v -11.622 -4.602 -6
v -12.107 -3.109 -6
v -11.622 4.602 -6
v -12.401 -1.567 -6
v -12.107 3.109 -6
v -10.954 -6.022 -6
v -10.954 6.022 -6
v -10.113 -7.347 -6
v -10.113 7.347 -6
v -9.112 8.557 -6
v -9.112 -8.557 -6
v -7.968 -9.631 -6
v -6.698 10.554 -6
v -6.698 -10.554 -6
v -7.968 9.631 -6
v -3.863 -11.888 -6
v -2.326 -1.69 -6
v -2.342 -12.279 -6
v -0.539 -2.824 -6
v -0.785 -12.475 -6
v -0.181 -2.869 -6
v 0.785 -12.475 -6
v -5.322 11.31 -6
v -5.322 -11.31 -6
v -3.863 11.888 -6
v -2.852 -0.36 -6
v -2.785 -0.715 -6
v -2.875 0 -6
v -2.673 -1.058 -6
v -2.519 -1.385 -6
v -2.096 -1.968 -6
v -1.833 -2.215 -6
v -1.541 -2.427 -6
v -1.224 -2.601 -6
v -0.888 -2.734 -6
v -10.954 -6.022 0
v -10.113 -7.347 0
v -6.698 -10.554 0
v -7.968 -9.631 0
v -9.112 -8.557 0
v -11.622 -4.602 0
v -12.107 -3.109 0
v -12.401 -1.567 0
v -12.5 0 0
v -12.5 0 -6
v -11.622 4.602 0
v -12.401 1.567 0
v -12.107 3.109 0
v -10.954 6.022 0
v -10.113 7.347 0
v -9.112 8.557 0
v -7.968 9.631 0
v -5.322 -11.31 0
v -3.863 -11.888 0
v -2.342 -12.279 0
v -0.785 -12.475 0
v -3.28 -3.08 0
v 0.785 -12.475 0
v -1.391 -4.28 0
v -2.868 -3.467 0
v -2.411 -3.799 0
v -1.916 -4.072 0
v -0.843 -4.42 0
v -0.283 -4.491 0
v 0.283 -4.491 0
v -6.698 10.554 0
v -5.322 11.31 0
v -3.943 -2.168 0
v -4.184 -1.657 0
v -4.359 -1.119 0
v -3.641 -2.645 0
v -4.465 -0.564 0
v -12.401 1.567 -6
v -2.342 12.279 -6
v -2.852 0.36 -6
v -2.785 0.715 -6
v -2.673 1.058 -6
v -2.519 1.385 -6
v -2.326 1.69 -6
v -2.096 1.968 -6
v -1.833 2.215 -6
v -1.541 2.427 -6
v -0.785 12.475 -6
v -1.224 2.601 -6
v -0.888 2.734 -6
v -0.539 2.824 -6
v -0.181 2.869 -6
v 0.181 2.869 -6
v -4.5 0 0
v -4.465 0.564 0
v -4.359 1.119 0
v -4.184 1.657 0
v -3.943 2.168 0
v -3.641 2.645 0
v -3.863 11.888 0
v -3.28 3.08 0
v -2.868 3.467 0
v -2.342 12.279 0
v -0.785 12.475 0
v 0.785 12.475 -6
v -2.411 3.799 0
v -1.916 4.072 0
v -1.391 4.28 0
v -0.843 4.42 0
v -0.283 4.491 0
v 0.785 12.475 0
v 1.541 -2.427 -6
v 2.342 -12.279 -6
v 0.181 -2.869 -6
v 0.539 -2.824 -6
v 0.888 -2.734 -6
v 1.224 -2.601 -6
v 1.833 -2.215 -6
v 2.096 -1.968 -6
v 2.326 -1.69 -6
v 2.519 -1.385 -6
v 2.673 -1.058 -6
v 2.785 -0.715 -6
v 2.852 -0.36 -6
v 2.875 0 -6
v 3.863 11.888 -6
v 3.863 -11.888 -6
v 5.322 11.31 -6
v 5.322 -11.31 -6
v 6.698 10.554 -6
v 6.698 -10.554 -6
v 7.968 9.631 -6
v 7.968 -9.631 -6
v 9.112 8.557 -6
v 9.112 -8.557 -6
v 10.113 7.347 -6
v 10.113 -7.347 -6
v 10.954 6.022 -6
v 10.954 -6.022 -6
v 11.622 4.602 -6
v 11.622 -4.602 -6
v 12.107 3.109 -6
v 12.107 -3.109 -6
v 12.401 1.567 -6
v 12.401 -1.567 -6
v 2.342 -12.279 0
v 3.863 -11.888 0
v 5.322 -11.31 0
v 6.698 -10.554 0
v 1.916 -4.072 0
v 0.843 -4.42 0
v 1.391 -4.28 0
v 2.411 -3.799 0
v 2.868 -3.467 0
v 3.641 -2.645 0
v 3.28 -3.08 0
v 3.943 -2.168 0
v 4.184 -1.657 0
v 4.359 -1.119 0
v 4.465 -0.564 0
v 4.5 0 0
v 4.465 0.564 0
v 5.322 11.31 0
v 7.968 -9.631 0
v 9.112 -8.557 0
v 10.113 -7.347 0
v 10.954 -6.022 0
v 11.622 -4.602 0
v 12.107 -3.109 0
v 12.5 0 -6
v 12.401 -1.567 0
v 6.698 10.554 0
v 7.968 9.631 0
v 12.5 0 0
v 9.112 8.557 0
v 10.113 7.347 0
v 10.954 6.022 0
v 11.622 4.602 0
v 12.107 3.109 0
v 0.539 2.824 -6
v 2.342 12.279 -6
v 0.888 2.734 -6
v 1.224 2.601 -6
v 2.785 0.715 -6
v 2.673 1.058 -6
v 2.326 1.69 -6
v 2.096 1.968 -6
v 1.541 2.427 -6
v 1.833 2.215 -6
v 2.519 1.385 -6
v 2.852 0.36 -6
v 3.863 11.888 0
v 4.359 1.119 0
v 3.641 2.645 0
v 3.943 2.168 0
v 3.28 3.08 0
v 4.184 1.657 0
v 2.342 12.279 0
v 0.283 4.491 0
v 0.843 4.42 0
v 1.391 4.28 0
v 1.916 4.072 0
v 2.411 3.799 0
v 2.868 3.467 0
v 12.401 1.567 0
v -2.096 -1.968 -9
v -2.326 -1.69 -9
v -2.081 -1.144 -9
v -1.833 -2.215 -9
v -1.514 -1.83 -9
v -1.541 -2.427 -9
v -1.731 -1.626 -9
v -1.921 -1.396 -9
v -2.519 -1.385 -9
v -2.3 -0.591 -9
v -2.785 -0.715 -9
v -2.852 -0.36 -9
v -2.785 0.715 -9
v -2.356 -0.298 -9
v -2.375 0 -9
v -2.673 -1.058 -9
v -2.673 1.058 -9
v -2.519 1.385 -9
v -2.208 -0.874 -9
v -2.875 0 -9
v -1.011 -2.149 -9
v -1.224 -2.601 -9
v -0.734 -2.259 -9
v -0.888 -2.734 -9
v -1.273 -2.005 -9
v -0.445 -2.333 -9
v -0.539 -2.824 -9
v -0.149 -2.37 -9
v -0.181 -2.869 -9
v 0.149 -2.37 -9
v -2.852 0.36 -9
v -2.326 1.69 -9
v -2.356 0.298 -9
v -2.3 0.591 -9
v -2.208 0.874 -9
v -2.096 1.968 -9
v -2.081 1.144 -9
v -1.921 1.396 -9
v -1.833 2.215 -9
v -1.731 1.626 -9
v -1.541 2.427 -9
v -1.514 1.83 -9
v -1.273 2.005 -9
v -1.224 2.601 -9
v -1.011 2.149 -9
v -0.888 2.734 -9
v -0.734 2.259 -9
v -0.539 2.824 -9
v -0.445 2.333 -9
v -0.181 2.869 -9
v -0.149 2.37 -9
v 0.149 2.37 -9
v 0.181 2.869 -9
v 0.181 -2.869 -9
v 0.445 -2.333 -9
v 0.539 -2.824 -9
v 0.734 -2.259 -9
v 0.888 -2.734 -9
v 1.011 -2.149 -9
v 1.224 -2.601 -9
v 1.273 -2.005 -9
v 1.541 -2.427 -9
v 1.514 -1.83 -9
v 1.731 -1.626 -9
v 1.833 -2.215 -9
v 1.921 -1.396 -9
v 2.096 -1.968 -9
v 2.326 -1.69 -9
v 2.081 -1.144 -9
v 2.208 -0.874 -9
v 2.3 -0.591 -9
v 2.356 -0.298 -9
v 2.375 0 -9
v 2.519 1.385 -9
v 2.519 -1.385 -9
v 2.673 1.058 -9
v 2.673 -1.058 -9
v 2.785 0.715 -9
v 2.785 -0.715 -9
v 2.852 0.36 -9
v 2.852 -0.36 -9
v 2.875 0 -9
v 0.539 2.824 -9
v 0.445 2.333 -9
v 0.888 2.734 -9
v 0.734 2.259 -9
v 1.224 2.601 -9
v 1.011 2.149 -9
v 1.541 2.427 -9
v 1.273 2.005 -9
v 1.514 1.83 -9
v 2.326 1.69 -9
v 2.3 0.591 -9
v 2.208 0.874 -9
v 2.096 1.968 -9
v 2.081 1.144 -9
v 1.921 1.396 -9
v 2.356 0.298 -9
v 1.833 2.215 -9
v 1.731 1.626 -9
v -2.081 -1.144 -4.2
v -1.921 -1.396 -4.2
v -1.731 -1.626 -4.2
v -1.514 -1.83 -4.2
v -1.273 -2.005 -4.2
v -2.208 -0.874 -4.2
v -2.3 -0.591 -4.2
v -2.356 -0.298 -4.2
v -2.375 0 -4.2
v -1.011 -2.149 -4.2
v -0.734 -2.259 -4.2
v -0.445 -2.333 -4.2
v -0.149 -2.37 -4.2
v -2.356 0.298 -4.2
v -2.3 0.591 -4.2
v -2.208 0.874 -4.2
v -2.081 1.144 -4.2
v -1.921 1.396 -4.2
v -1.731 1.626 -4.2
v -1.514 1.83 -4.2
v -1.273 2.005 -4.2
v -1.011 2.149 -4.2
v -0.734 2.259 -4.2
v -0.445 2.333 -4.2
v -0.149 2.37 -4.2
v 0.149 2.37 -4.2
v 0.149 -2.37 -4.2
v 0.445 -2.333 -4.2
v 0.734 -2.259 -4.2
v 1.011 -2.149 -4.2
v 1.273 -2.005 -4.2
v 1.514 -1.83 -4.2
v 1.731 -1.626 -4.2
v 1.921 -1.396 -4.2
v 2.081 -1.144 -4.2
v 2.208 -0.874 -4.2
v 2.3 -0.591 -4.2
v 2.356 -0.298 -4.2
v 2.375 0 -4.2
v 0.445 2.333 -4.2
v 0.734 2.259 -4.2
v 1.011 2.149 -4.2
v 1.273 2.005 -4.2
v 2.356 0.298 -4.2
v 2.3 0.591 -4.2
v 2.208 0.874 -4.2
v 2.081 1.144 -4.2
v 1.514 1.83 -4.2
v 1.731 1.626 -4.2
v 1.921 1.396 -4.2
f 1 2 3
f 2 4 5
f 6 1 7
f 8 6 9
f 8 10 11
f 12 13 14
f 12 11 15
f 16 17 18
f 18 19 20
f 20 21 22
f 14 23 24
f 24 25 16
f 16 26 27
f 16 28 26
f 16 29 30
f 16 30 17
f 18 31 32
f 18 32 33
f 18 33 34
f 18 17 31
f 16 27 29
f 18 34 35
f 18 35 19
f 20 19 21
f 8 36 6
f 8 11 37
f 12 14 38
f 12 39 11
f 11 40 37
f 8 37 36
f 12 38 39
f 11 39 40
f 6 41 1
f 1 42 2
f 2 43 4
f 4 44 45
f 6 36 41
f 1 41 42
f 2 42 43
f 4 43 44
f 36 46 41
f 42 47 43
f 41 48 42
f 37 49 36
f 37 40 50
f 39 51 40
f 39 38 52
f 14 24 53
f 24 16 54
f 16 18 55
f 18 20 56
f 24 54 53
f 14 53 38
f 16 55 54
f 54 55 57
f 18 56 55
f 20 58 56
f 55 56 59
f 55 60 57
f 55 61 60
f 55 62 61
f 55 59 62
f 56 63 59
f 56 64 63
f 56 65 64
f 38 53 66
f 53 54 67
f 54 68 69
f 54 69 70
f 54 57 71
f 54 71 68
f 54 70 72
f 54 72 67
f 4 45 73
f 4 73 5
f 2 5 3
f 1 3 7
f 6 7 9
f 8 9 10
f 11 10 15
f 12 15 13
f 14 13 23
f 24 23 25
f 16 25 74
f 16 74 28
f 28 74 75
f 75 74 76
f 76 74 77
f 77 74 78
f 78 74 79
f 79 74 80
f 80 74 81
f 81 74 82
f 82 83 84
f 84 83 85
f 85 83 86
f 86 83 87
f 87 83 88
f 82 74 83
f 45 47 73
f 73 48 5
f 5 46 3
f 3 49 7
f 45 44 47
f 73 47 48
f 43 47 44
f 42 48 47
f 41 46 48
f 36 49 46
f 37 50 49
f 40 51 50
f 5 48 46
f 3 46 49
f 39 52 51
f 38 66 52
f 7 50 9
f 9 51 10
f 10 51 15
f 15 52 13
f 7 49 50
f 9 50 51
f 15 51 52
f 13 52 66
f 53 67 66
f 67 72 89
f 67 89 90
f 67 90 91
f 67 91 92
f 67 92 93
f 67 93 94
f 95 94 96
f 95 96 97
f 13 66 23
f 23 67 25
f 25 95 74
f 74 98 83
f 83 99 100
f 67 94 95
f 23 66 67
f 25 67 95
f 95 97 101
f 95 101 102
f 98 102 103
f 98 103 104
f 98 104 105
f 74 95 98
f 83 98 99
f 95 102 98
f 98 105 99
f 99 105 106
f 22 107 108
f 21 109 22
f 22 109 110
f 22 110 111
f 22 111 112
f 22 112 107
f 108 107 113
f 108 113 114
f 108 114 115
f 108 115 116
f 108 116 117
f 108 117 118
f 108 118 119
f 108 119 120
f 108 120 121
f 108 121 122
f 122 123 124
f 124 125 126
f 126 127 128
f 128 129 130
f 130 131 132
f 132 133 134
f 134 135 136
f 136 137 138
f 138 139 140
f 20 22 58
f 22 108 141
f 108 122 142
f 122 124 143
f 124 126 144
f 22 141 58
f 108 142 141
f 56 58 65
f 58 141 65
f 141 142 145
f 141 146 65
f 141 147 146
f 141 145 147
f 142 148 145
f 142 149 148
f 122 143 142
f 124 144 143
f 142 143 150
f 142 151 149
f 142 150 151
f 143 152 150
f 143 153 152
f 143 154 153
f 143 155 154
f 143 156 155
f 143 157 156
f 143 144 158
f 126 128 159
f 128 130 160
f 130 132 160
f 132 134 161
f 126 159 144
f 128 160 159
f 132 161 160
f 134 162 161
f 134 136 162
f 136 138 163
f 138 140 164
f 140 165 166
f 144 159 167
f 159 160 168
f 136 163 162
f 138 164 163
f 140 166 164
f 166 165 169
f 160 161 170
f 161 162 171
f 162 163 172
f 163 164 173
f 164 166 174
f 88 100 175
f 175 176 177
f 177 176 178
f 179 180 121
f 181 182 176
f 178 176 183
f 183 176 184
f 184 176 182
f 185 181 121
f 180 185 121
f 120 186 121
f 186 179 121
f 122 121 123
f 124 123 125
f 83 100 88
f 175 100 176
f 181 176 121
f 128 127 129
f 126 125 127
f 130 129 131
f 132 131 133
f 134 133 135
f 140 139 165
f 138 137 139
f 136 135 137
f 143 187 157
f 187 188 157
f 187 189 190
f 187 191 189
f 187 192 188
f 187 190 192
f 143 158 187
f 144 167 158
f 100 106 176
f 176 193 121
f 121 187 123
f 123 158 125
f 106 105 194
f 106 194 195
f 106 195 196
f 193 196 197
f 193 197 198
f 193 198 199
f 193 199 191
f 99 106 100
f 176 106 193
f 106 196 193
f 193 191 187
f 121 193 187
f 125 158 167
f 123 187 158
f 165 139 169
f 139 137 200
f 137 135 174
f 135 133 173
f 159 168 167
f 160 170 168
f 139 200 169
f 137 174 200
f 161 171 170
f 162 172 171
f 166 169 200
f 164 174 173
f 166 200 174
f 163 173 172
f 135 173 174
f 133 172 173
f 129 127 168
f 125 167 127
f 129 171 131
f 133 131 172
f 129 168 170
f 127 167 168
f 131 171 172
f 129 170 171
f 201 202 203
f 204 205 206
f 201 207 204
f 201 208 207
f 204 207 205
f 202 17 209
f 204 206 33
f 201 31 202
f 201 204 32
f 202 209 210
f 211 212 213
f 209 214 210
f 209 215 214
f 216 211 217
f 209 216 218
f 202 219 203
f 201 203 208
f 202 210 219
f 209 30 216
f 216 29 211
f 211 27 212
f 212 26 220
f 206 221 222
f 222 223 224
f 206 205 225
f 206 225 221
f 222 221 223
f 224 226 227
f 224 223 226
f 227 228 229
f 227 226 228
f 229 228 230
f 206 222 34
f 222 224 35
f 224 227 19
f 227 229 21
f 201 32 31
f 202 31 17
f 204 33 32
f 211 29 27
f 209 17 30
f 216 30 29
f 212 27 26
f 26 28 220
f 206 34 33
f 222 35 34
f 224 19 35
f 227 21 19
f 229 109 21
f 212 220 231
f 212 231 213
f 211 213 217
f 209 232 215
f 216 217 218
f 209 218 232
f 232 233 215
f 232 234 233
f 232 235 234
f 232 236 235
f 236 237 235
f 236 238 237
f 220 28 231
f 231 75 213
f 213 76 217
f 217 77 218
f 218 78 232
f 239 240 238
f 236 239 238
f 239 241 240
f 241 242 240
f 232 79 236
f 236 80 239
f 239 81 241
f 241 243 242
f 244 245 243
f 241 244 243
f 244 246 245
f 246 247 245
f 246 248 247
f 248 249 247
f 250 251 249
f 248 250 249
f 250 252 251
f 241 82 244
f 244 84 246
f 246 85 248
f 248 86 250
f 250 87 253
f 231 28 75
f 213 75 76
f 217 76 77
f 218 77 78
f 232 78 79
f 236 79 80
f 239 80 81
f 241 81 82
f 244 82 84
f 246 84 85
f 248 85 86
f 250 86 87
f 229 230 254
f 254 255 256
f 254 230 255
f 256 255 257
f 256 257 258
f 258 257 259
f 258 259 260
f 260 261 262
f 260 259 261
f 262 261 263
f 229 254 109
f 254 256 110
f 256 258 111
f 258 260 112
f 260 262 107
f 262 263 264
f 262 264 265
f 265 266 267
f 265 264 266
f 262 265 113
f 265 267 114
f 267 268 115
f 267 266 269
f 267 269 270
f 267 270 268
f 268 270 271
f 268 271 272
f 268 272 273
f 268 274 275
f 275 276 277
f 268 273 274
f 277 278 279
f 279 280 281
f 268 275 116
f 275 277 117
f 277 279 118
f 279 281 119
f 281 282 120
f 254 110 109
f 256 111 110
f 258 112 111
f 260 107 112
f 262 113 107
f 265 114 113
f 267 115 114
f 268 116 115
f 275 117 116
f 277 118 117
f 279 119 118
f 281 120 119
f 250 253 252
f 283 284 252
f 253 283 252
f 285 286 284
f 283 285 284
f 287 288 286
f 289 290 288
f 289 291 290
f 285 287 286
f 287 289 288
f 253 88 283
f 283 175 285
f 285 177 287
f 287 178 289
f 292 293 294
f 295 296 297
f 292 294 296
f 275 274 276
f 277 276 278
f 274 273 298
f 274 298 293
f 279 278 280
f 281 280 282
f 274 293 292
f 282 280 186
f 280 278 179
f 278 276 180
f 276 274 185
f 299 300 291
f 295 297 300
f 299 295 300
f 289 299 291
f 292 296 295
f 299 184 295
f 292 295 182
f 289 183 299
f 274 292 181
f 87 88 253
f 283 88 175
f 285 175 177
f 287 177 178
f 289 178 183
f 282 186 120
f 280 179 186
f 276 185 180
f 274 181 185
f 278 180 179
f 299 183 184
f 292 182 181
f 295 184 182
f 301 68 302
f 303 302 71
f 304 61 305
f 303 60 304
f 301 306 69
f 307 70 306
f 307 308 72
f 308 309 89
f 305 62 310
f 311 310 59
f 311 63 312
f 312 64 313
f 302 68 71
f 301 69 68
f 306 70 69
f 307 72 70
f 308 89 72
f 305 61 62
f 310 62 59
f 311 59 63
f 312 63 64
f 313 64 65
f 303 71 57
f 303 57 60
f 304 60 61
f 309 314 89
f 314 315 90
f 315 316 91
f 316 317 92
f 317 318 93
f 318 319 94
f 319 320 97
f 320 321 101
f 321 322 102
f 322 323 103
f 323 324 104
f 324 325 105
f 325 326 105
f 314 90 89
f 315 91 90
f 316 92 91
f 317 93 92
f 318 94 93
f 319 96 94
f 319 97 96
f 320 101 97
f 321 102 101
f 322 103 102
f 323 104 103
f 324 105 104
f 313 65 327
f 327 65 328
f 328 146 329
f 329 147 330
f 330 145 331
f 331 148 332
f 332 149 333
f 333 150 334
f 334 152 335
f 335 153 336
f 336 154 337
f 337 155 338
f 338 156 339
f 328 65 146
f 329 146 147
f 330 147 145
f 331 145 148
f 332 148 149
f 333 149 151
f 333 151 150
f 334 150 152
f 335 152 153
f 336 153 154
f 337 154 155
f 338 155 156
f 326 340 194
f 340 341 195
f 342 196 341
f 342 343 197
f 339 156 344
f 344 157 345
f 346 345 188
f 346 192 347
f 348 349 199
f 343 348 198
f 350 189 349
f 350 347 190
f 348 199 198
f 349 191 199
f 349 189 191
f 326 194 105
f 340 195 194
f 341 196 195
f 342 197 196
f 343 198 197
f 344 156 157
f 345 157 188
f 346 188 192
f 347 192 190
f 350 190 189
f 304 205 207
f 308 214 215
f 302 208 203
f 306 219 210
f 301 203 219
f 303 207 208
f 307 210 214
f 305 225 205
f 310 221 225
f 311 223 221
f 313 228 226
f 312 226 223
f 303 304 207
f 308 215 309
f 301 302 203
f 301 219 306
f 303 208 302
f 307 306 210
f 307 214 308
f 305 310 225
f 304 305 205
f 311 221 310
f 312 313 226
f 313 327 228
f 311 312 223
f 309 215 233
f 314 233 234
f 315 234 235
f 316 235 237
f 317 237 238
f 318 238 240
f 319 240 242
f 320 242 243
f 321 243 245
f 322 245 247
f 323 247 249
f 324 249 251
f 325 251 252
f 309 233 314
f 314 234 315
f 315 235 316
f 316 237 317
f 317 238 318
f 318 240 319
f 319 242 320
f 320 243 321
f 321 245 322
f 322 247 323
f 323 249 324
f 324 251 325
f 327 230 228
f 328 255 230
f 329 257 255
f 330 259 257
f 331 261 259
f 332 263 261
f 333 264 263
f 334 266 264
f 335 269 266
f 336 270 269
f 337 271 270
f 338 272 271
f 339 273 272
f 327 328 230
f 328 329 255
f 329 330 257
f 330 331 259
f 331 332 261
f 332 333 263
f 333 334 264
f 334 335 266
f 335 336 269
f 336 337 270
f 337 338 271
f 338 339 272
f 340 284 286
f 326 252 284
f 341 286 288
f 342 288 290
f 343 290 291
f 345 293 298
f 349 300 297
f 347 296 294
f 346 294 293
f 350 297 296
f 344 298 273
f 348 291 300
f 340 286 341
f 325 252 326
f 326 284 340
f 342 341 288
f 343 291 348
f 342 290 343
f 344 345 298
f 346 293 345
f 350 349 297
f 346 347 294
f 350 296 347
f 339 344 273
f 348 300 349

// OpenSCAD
$fn = 50;


difference() {
	union() {
		translate(v = [0, 0, -6.0000000000]) {
			cylinder(h = 6, r = 12.5000000000);
		}
		#translate(v = [0, 0, -9.0000000000]) {
			cylinder(h = 9, r = 2.8750000000);
		}
	}
	union() {
		translate(v = [0, 0, 0]) {
			rotate(a = [0, 0, 0]) {
				difference() {
					union() {
						translate(v = [0, 0, -9.0000000000]) {
							cylinder(h = 9, r = 2.2500000000);
						}
						translate(v = [0, 0, -4.2000000000]) {
							cylinder(h = 4.2000000000, r1 = 2.3750000000, r2 = 4.5000000000);
						}
						translate(v = [0, 0, -9.0000000000]) {
							cylinder(h = 9, r = 2.3750000000);
						}
						translate(v = [0, 0, -9.0000000000]) {
							cylinder(h = 9, r = 2.2500000000);
						}
					}
					union();
				}
			}
		}
	}
}
